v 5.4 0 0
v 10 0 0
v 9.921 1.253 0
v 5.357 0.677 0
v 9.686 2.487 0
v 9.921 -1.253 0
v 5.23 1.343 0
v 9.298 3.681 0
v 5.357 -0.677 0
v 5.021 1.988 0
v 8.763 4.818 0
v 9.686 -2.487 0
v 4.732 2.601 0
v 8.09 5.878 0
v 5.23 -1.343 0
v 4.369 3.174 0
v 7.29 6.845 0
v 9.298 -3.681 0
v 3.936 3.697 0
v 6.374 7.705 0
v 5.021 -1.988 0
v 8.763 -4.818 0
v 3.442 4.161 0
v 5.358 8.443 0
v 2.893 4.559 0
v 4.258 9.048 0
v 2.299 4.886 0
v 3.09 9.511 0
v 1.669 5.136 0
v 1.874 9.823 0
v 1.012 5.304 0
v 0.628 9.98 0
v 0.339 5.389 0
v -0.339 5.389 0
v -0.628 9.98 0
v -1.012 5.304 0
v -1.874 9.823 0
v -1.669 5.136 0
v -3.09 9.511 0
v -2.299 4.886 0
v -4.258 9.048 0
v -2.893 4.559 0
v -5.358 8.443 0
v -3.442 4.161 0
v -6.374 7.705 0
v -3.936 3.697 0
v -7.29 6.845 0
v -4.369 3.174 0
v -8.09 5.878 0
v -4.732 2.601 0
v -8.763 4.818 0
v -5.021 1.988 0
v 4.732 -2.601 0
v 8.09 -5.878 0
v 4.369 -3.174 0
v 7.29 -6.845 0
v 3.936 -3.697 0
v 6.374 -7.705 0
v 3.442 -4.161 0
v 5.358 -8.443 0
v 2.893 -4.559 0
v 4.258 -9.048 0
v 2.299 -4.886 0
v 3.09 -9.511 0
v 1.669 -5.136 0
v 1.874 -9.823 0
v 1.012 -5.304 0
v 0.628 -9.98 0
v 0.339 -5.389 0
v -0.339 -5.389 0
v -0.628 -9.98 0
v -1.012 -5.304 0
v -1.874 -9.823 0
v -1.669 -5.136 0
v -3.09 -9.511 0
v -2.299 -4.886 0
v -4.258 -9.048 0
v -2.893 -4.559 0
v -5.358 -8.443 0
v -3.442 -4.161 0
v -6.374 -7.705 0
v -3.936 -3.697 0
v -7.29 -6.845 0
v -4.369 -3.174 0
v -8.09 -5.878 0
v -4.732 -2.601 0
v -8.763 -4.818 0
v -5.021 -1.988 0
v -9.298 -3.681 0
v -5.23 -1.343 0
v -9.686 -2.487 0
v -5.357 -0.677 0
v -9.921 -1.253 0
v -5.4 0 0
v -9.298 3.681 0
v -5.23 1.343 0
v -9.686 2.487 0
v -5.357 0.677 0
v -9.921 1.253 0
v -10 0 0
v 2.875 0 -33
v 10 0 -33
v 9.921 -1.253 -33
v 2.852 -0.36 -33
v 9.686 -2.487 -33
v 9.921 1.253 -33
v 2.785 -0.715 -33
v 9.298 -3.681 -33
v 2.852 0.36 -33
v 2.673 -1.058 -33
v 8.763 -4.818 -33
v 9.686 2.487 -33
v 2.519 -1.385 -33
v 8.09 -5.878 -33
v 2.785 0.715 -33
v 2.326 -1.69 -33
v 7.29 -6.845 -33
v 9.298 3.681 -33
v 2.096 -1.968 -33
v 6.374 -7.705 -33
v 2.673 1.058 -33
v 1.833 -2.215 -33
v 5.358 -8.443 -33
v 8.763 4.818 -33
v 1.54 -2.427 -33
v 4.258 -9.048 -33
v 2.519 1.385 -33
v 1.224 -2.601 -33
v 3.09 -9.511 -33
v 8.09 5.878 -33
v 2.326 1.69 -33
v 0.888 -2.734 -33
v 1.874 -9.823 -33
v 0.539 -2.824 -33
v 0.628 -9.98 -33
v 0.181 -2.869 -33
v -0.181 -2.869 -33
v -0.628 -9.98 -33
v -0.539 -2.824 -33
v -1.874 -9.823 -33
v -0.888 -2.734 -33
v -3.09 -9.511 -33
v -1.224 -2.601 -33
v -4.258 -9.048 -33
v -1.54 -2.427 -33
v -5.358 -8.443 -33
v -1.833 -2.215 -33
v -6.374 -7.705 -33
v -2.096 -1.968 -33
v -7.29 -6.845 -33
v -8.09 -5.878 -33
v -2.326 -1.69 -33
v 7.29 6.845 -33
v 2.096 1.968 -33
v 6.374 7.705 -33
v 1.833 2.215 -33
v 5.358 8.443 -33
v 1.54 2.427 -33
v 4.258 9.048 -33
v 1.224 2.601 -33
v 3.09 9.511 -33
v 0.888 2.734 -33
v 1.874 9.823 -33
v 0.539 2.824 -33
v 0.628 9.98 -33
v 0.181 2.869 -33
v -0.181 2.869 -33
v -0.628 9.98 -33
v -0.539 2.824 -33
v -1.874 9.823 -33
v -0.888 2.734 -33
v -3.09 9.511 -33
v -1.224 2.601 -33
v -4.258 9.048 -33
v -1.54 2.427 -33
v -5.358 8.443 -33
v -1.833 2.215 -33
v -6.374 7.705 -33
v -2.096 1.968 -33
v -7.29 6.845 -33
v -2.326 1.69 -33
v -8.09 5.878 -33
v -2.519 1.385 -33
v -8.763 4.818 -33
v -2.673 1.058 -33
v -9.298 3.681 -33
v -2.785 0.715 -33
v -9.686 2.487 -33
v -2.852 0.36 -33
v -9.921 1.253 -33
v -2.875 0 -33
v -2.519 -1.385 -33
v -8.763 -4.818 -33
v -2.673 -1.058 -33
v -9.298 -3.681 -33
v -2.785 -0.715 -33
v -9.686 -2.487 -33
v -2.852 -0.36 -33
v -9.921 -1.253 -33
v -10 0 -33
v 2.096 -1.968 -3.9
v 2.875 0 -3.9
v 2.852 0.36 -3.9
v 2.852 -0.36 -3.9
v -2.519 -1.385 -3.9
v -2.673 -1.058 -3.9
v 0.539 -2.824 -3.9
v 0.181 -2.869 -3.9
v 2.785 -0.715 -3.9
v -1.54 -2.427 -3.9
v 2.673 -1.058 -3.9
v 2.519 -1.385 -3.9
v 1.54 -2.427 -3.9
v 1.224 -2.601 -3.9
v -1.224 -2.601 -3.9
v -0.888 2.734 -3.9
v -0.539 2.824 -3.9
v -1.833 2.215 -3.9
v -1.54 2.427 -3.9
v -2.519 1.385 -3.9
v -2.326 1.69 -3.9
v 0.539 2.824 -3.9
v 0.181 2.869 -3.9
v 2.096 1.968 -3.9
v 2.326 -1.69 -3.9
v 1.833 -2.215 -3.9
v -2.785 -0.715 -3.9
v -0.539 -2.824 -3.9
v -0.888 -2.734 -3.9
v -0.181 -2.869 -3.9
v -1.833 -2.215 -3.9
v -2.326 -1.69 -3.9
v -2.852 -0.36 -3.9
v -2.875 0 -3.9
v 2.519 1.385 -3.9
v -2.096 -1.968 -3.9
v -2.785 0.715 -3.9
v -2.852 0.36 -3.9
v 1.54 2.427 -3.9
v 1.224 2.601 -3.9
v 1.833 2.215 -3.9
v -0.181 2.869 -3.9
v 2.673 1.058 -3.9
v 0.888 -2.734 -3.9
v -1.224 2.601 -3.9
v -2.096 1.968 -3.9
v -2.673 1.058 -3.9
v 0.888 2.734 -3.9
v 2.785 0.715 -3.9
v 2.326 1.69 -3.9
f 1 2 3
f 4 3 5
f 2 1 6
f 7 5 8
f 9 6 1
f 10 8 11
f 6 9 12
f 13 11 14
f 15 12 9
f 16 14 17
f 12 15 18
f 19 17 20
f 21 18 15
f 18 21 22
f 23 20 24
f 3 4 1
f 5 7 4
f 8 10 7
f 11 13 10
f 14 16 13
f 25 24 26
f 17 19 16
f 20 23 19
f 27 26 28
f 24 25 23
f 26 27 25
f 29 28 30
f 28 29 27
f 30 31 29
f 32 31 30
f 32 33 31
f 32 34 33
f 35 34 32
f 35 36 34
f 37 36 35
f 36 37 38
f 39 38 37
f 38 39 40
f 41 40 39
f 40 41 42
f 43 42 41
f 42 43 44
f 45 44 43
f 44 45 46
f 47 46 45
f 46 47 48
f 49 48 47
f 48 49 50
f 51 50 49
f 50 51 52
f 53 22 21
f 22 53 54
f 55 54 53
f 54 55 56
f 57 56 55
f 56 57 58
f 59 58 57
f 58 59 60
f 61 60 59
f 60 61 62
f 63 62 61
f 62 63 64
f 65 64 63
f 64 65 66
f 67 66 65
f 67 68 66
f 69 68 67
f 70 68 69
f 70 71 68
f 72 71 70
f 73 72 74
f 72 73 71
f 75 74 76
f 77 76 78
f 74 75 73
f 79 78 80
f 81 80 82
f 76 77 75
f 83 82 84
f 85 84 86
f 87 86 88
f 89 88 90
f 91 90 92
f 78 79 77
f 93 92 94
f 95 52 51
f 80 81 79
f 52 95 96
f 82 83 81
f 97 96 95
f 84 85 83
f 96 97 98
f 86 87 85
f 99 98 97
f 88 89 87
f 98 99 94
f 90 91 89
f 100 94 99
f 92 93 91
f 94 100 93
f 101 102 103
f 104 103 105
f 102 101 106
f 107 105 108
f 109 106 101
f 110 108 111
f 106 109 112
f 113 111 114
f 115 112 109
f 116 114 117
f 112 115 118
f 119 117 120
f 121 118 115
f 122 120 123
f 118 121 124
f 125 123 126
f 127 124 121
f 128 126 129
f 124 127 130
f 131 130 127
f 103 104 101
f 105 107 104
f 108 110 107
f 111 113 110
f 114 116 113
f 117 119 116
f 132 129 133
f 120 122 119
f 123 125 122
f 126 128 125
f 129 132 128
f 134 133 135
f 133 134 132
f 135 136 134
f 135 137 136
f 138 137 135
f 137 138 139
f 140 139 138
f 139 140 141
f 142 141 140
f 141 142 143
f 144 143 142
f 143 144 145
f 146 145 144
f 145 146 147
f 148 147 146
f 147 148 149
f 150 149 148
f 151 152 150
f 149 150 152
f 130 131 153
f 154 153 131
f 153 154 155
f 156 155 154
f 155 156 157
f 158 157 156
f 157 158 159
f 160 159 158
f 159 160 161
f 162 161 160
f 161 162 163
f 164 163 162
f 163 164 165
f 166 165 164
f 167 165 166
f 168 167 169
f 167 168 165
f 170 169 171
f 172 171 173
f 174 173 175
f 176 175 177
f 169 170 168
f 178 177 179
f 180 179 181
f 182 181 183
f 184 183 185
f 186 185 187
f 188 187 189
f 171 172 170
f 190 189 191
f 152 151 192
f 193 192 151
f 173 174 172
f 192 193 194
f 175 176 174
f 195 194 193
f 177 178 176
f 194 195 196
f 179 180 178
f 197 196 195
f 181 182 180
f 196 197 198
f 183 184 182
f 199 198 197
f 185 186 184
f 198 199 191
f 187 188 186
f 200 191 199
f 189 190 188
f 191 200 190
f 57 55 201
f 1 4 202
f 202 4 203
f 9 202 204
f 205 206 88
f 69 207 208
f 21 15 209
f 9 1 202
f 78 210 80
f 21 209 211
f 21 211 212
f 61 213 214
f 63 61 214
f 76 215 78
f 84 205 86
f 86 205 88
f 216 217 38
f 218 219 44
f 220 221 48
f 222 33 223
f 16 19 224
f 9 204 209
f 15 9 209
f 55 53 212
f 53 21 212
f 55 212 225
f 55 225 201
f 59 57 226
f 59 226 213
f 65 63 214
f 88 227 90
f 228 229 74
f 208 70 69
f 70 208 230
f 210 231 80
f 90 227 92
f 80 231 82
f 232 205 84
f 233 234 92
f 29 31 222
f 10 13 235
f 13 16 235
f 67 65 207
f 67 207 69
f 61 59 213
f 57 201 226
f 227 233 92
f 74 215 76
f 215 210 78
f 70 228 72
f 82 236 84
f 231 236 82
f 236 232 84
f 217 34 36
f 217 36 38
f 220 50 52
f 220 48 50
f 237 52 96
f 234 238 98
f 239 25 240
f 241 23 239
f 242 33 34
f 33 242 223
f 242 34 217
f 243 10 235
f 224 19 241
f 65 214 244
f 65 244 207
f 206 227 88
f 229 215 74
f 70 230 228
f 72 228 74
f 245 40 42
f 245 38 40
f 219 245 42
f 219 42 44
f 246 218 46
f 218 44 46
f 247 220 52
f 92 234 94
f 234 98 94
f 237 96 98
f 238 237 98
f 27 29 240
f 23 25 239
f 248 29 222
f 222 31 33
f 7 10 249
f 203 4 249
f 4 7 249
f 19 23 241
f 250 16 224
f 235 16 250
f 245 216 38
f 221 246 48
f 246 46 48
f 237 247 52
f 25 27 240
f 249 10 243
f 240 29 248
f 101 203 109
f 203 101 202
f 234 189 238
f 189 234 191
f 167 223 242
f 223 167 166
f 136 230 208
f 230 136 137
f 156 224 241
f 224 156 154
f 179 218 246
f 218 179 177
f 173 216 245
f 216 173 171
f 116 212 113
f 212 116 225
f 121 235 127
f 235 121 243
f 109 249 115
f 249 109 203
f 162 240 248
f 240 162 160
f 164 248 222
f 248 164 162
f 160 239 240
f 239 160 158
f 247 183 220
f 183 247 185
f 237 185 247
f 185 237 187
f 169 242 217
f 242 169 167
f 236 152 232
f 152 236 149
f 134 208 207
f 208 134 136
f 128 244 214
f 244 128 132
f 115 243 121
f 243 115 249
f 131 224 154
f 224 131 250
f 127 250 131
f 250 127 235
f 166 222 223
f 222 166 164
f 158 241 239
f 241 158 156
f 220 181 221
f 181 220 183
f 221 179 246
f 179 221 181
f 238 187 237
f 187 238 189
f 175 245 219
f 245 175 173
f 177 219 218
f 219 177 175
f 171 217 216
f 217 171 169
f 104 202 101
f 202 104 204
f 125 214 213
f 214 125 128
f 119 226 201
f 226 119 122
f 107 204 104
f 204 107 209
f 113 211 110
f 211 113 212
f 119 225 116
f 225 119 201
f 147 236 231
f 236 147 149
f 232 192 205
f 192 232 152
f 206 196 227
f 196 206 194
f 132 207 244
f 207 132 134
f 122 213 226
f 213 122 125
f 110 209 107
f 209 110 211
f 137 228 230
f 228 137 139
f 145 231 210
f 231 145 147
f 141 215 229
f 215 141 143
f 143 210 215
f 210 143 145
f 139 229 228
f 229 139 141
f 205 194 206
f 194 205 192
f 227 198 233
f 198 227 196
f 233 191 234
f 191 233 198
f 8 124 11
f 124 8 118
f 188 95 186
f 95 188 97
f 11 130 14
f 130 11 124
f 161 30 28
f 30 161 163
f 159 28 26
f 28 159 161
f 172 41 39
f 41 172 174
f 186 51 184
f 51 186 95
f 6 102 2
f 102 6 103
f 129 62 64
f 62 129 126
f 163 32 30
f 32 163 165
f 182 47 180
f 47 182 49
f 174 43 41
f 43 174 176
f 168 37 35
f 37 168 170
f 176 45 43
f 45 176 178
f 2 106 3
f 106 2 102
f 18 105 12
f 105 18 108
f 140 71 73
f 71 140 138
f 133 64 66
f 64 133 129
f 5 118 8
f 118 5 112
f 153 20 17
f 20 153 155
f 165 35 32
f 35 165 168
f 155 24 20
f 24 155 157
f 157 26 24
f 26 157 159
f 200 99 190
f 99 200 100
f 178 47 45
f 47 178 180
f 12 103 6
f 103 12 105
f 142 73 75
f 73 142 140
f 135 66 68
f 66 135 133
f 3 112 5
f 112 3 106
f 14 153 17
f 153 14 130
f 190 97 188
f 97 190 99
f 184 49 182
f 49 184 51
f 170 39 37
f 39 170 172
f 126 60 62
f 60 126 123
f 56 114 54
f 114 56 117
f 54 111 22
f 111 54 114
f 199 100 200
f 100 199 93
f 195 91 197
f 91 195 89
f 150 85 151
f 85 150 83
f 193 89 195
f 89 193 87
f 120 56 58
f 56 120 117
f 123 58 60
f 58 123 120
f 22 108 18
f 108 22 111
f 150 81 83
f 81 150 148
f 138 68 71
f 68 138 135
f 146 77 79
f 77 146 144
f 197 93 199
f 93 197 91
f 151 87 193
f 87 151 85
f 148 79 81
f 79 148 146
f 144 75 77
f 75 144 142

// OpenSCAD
$fn = 50;


difference() {
	union() {
		translate(v = [0, 0, -33.0000000000]) {
			cylinder(h = 33, r = 10.0000000000);
		}
		cylinder(h = 0, r = 16.0000000000);
	}
	union() {
		translate(v = [0, 0, 0]) {
			rotate(a = [0, 0, 0]) {
				difference() {
					union() {
						#translate(v = [0, 0, -33.0000000000]) {
							cylinder(h = 33, r = 2.6000000000);
						}
						#translate(v = [0, 0, -3.9000000000]) {
							cylinder(h = 3.9000000000, r = 10.0000000000, r1 = 2.8750000000, r2 = 5.4000000000);
						}
						#translate(v = [0, 0, -33.0000000000]) {
							cylinder(h = 33, r = 2.8750000000);
						}
						#translate(v = [0, 0, -33.0000000000]) {
							cylinder(h = 33, r = 2.6000000000);
						}
					}
					union();
				}
			}
		}
	}
}
